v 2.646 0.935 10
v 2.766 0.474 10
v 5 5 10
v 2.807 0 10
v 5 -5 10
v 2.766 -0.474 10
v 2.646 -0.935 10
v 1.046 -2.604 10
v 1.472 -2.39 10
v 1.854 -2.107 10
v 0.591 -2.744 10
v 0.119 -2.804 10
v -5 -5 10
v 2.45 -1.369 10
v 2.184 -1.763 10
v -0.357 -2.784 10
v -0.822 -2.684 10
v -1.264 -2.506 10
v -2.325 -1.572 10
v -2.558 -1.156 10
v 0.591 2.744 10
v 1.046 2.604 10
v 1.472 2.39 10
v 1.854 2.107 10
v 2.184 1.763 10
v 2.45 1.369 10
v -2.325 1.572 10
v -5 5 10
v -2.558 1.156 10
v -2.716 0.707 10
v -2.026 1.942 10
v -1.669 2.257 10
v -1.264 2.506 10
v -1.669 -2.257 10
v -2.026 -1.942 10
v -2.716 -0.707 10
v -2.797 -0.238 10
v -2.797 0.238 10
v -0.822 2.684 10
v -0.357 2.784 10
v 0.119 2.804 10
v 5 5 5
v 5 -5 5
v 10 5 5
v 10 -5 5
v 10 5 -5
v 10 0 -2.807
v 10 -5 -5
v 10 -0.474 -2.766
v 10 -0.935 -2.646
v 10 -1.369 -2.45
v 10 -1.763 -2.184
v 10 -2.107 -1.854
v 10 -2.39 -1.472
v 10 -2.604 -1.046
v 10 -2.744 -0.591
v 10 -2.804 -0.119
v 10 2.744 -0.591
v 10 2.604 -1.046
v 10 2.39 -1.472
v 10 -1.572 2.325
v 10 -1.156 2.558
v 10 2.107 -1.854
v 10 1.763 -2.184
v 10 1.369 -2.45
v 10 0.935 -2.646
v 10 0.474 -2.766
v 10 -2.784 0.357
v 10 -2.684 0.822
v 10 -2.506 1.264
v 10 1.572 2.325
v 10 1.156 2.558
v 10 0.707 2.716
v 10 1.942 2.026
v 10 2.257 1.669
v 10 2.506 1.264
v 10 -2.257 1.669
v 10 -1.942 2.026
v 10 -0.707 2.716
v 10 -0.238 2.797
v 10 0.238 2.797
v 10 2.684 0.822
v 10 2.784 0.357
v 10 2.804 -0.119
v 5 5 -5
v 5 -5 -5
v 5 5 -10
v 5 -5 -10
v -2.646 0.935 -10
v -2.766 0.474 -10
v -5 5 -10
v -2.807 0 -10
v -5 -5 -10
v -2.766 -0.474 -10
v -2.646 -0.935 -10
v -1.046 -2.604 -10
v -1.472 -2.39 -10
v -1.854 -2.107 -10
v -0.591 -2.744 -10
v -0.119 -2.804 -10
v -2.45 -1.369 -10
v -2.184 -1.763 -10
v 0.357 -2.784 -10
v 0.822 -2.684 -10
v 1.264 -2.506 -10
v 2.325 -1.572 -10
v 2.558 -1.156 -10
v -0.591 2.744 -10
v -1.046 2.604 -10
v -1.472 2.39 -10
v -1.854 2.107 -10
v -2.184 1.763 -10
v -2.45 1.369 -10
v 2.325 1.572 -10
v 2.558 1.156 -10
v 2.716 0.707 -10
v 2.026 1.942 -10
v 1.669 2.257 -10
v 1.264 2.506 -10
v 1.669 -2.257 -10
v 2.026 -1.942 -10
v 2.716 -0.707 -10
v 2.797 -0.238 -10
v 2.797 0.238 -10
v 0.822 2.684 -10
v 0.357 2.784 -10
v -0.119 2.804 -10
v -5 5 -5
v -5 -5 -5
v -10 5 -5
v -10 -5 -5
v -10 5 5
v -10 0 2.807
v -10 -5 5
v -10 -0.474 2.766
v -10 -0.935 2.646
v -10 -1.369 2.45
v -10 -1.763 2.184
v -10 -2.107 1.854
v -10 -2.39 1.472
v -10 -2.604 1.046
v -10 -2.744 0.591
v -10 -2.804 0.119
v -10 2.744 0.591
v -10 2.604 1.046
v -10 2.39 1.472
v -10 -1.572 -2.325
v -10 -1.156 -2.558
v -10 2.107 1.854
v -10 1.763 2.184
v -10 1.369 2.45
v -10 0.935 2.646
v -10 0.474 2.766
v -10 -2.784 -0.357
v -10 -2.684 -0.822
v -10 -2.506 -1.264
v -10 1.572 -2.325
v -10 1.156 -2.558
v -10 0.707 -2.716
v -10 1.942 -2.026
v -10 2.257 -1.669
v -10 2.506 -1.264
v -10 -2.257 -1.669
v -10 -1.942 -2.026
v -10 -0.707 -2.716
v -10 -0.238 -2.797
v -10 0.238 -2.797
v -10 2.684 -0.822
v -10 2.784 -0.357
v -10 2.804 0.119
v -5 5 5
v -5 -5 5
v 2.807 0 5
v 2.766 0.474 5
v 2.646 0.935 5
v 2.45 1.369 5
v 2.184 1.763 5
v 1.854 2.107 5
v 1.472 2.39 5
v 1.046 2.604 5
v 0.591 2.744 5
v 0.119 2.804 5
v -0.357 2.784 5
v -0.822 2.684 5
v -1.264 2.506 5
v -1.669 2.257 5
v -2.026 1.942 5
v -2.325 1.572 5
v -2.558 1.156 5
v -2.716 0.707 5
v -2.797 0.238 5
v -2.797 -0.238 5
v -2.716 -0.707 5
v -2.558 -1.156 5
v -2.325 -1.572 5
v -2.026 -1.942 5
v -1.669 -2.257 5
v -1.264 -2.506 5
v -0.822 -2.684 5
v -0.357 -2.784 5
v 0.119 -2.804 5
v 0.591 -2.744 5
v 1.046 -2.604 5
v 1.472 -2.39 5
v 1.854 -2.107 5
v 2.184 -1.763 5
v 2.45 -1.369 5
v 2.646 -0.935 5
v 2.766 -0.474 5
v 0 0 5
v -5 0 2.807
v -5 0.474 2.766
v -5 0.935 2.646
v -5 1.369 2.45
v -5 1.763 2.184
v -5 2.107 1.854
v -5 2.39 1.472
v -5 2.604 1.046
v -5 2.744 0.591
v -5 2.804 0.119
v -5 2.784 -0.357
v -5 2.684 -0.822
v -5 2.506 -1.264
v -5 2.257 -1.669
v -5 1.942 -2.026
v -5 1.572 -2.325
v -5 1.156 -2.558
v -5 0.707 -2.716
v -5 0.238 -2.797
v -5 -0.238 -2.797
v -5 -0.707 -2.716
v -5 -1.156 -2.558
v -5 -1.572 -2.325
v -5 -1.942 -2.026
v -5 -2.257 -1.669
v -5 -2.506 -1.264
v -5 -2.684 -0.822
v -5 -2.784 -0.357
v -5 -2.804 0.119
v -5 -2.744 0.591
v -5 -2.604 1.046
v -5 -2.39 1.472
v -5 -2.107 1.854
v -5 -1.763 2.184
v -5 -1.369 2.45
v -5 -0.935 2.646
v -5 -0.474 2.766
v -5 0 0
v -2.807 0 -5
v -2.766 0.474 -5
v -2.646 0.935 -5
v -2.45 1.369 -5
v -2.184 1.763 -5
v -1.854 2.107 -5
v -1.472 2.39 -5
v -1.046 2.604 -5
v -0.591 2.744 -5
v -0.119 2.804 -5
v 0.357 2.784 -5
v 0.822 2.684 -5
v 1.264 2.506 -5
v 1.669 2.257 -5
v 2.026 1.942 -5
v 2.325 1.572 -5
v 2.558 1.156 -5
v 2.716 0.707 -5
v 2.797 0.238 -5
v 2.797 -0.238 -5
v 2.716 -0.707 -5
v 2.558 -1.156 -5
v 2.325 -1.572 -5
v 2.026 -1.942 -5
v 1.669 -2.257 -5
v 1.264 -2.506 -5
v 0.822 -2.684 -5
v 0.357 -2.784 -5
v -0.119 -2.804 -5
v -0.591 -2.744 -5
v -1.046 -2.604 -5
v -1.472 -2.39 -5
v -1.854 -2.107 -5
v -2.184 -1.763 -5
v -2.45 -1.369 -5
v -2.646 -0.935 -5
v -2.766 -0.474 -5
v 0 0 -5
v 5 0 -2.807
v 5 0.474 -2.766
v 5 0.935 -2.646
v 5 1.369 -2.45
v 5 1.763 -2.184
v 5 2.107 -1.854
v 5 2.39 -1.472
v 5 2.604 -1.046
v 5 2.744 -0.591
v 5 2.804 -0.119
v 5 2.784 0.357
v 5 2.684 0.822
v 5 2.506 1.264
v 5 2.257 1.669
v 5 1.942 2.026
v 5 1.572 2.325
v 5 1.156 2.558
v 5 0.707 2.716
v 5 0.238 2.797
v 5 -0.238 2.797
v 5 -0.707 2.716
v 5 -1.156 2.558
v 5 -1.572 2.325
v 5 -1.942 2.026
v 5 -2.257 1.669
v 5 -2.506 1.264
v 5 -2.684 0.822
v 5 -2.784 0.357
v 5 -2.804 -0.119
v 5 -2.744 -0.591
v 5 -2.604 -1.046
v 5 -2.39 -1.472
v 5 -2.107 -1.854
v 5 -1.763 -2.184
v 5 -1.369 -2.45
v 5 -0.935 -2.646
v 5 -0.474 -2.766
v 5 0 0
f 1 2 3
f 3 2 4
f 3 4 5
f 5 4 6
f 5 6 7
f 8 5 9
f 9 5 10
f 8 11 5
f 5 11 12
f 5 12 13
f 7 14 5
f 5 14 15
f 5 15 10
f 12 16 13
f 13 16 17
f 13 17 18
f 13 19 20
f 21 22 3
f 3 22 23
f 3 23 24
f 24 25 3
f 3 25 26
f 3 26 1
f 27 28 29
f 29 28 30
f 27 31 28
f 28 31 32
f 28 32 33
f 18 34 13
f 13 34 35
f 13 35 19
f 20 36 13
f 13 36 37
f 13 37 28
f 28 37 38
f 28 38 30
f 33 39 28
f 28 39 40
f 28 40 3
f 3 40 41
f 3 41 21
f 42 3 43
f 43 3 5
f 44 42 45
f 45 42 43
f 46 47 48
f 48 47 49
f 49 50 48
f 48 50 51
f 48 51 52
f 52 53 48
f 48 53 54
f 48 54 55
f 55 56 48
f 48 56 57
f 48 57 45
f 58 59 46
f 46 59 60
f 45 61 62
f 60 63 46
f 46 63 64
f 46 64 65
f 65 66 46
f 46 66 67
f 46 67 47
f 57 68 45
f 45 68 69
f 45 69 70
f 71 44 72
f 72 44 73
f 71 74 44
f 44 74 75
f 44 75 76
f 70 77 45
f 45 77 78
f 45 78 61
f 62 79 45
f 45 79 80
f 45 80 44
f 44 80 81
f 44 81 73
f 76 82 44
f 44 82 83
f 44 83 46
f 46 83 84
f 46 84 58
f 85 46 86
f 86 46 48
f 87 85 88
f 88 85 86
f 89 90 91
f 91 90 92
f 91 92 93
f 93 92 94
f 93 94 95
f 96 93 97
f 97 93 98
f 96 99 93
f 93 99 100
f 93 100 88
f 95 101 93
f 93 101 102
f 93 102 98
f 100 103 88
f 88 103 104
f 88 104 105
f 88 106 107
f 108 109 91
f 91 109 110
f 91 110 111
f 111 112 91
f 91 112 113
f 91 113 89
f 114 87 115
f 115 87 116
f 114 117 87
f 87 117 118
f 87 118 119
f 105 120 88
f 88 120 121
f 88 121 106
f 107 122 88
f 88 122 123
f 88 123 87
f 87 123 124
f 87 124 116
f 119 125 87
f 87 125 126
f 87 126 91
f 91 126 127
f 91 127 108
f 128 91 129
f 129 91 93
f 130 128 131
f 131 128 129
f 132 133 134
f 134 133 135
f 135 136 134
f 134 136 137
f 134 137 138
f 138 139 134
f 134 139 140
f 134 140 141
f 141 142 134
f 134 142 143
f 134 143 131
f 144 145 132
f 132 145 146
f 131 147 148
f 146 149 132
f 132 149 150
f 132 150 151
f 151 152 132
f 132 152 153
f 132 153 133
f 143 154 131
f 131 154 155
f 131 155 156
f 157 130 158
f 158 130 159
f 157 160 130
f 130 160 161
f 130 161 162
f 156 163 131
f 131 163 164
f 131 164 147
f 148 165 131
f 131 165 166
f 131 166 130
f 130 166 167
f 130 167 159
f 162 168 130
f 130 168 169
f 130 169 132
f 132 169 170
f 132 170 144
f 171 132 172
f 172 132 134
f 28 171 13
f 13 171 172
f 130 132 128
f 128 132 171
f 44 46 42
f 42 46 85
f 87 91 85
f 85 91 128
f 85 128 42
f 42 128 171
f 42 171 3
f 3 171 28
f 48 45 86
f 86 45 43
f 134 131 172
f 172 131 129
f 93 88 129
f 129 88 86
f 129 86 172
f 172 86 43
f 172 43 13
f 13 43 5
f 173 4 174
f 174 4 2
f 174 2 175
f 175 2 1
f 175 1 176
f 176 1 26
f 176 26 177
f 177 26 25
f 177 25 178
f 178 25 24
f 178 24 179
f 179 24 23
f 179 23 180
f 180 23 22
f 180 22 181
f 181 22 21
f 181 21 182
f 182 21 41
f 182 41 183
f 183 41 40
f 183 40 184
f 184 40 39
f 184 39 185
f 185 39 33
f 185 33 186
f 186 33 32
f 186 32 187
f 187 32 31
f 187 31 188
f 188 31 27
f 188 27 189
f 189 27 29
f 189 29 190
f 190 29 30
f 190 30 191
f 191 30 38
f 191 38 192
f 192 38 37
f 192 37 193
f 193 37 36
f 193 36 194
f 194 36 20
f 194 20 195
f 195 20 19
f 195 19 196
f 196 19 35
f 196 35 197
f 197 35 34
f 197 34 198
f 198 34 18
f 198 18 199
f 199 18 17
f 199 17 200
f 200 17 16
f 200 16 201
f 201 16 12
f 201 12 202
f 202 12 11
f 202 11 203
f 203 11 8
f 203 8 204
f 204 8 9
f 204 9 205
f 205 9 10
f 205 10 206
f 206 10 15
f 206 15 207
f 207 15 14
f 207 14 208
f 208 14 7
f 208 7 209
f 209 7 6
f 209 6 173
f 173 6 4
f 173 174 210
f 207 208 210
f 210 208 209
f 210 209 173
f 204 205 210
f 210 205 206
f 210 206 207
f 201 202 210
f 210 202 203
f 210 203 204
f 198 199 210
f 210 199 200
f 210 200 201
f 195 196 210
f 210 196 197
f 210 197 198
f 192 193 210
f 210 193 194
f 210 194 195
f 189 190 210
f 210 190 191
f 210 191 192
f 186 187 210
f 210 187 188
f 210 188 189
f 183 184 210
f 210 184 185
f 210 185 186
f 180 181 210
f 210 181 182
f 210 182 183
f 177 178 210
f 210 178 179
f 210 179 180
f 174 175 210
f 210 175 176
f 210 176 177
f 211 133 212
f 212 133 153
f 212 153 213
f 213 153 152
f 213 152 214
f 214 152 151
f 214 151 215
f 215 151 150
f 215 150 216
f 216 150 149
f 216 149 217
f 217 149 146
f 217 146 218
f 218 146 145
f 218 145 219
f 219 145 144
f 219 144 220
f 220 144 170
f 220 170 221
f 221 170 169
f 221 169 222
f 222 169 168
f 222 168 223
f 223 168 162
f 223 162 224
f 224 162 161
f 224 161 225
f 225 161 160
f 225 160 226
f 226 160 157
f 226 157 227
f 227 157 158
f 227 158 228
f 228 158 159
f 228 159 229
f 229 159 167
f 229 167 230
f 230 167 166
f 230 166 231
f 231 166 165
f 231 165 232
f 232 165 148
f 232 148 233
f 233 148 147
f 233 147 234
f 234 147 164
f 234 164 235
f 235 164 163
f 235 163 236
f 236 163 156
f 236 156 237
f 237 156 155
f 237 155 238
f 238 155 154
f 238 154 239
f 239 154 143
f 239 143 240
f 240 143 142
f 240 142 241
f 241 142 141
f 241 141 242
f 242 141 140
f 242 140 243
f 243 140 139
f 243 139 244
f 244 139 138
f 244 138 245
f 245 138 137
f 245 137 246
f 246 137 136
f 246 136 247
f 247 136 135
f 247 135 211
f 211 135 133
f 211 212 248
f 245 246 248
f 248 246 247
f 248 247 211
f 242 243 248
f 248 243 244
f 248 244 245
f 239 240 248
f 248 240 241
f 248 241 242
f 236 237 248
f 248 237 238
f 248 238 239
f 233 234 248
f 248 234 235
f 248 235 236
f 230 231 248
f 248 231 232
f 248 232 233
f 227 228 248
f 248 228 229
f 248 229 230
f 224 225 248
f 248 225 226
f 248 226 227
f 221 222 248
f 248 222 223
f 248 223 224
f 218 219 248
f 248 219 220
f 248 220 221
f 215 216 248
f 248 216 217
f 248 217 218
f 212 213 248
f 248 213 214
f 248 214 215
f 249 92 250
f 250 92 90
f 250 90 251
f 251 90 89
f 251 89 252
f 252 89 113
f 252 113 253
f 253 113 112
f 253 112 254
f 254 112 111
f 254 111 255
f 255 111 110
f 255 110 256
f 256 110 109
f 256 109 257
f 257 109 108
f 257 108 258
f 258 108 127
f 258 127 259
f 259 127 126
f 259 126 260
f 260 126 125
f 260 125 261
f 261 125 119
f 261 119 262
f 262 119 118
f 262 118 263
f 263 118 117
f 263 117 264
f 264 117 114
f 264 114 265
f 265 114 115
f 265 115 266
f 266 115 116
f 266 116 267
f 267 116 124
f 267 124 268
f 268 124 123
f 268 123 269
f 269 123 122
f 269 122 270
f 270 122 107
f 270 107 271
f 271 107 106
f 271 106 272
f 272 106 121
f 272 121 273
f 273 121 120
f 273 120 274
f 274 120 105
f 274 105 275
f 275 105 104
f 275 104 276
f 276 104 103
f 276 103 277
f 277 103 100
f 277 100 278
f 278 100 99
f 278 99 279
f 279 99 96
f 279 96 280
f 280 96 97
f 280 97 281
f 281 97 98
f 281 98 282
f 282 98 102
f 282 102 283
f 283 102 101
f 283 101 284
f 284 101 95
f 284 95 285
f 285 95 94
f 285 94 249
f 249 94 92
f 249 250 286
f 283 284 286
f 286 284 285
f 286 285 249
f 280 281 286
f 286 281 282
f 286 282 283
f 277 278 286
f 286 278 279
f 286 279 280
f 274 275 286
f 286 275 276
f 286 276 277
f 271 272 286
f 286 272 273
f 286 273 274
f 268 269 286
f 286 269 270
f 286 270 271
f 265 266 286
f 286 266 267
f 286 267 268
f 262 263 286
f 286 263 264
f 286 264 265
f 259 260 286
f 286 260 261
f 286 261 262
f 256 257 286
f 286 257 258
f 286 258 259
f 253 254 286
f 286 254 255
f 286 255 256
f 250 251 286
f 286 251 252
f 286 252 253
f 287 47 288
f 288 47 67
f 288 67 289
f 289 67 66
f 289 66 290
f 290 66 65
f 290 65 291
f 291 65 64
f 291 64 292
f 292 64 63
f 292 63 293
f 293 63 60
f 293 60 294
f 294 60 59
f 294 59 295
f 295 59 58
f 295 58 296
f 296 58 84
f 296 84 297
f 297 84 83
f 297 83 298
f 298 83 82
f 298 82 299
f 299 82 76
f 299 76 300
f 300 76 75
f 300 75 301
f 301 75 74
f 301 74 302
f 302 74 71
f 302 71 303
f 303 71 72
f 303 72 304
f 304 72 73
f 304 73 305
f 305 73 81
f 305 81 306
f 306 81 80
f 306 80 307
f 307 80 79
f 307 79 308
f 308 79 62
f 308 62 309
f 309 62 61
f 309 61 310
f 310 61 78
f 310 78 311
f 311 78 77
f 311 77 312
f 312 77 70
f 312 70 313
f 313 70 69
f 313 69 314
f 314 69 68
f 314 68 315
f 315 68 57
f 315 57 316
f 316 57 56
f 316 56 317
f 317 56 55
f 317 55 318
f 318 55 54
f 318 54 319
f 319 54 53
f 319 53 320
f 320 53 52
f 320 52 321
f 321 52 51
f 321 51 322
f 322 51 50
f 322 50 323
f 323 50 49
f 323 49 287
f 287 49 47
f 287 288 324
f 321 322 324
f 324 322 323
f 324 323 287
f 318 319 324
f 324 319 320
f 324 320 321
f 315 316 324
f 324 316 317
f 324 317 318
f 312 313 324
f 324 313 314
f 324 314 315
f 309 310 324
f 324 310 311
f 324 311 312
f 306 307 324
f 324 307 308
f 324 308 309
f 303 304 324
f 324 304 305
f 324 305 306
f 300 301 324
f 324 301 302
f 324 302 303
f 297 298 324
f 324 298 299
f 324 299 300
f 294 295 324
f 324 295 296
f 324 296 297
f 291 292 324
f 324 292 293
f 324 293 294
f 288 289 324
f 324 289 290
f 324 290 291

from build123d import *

# Parameters (mm, degrees)
BOSS_EXTRUDE1_DEPTH = 5
SKETCH2_R           = 2.8067
CUT_EXTRUDE1_DEPTH  = 5
CIRPATTERN1_COUNT   = 4


with BuildPart() as part:
    # Sketch1 → Boss-Extrude1 (new, symmetric)
    with BuildSketch(Plane(origin=(0, 0, 0), x_dir=(1, 0, 0), z_dir=(0, 1, 0))):
        Polygon((-10, 5), (-10, -5), (-5, -5), (-5, -10), (5, -10), (5, -5), (10, -5), (10, 5), (5, 5), (5, 10), (-5, 10), (-5, 5), align=None)
    extrude(amount=BOSS_EXTRUDE1_DEPTH, both=True)

    # Sketch2 → Cut-Extrude1 (cut)
    with BuildSketch(Plane.XY.offset(10)):
        Circle(SKETCH2_R)
    cut_extrude1 = extrude(amount=-CUT_EXTRUDE1_DEPTH, mode=Mode.SUBTRACT)

    # CirPattern1: Cut-Extrude1 ×4 about axis
    cirpattern1_axis = Axis((0, 0, 0), (0, 1, 0))
    for i in range(1, CIRPATTERN1_COUNT):
        add(cut_extrude1.rotate(cirpattern1_axis, i * 360 / CIRPATTERN1_COUNT), mode=Mode.SUBTRACT)


solid = part.part
